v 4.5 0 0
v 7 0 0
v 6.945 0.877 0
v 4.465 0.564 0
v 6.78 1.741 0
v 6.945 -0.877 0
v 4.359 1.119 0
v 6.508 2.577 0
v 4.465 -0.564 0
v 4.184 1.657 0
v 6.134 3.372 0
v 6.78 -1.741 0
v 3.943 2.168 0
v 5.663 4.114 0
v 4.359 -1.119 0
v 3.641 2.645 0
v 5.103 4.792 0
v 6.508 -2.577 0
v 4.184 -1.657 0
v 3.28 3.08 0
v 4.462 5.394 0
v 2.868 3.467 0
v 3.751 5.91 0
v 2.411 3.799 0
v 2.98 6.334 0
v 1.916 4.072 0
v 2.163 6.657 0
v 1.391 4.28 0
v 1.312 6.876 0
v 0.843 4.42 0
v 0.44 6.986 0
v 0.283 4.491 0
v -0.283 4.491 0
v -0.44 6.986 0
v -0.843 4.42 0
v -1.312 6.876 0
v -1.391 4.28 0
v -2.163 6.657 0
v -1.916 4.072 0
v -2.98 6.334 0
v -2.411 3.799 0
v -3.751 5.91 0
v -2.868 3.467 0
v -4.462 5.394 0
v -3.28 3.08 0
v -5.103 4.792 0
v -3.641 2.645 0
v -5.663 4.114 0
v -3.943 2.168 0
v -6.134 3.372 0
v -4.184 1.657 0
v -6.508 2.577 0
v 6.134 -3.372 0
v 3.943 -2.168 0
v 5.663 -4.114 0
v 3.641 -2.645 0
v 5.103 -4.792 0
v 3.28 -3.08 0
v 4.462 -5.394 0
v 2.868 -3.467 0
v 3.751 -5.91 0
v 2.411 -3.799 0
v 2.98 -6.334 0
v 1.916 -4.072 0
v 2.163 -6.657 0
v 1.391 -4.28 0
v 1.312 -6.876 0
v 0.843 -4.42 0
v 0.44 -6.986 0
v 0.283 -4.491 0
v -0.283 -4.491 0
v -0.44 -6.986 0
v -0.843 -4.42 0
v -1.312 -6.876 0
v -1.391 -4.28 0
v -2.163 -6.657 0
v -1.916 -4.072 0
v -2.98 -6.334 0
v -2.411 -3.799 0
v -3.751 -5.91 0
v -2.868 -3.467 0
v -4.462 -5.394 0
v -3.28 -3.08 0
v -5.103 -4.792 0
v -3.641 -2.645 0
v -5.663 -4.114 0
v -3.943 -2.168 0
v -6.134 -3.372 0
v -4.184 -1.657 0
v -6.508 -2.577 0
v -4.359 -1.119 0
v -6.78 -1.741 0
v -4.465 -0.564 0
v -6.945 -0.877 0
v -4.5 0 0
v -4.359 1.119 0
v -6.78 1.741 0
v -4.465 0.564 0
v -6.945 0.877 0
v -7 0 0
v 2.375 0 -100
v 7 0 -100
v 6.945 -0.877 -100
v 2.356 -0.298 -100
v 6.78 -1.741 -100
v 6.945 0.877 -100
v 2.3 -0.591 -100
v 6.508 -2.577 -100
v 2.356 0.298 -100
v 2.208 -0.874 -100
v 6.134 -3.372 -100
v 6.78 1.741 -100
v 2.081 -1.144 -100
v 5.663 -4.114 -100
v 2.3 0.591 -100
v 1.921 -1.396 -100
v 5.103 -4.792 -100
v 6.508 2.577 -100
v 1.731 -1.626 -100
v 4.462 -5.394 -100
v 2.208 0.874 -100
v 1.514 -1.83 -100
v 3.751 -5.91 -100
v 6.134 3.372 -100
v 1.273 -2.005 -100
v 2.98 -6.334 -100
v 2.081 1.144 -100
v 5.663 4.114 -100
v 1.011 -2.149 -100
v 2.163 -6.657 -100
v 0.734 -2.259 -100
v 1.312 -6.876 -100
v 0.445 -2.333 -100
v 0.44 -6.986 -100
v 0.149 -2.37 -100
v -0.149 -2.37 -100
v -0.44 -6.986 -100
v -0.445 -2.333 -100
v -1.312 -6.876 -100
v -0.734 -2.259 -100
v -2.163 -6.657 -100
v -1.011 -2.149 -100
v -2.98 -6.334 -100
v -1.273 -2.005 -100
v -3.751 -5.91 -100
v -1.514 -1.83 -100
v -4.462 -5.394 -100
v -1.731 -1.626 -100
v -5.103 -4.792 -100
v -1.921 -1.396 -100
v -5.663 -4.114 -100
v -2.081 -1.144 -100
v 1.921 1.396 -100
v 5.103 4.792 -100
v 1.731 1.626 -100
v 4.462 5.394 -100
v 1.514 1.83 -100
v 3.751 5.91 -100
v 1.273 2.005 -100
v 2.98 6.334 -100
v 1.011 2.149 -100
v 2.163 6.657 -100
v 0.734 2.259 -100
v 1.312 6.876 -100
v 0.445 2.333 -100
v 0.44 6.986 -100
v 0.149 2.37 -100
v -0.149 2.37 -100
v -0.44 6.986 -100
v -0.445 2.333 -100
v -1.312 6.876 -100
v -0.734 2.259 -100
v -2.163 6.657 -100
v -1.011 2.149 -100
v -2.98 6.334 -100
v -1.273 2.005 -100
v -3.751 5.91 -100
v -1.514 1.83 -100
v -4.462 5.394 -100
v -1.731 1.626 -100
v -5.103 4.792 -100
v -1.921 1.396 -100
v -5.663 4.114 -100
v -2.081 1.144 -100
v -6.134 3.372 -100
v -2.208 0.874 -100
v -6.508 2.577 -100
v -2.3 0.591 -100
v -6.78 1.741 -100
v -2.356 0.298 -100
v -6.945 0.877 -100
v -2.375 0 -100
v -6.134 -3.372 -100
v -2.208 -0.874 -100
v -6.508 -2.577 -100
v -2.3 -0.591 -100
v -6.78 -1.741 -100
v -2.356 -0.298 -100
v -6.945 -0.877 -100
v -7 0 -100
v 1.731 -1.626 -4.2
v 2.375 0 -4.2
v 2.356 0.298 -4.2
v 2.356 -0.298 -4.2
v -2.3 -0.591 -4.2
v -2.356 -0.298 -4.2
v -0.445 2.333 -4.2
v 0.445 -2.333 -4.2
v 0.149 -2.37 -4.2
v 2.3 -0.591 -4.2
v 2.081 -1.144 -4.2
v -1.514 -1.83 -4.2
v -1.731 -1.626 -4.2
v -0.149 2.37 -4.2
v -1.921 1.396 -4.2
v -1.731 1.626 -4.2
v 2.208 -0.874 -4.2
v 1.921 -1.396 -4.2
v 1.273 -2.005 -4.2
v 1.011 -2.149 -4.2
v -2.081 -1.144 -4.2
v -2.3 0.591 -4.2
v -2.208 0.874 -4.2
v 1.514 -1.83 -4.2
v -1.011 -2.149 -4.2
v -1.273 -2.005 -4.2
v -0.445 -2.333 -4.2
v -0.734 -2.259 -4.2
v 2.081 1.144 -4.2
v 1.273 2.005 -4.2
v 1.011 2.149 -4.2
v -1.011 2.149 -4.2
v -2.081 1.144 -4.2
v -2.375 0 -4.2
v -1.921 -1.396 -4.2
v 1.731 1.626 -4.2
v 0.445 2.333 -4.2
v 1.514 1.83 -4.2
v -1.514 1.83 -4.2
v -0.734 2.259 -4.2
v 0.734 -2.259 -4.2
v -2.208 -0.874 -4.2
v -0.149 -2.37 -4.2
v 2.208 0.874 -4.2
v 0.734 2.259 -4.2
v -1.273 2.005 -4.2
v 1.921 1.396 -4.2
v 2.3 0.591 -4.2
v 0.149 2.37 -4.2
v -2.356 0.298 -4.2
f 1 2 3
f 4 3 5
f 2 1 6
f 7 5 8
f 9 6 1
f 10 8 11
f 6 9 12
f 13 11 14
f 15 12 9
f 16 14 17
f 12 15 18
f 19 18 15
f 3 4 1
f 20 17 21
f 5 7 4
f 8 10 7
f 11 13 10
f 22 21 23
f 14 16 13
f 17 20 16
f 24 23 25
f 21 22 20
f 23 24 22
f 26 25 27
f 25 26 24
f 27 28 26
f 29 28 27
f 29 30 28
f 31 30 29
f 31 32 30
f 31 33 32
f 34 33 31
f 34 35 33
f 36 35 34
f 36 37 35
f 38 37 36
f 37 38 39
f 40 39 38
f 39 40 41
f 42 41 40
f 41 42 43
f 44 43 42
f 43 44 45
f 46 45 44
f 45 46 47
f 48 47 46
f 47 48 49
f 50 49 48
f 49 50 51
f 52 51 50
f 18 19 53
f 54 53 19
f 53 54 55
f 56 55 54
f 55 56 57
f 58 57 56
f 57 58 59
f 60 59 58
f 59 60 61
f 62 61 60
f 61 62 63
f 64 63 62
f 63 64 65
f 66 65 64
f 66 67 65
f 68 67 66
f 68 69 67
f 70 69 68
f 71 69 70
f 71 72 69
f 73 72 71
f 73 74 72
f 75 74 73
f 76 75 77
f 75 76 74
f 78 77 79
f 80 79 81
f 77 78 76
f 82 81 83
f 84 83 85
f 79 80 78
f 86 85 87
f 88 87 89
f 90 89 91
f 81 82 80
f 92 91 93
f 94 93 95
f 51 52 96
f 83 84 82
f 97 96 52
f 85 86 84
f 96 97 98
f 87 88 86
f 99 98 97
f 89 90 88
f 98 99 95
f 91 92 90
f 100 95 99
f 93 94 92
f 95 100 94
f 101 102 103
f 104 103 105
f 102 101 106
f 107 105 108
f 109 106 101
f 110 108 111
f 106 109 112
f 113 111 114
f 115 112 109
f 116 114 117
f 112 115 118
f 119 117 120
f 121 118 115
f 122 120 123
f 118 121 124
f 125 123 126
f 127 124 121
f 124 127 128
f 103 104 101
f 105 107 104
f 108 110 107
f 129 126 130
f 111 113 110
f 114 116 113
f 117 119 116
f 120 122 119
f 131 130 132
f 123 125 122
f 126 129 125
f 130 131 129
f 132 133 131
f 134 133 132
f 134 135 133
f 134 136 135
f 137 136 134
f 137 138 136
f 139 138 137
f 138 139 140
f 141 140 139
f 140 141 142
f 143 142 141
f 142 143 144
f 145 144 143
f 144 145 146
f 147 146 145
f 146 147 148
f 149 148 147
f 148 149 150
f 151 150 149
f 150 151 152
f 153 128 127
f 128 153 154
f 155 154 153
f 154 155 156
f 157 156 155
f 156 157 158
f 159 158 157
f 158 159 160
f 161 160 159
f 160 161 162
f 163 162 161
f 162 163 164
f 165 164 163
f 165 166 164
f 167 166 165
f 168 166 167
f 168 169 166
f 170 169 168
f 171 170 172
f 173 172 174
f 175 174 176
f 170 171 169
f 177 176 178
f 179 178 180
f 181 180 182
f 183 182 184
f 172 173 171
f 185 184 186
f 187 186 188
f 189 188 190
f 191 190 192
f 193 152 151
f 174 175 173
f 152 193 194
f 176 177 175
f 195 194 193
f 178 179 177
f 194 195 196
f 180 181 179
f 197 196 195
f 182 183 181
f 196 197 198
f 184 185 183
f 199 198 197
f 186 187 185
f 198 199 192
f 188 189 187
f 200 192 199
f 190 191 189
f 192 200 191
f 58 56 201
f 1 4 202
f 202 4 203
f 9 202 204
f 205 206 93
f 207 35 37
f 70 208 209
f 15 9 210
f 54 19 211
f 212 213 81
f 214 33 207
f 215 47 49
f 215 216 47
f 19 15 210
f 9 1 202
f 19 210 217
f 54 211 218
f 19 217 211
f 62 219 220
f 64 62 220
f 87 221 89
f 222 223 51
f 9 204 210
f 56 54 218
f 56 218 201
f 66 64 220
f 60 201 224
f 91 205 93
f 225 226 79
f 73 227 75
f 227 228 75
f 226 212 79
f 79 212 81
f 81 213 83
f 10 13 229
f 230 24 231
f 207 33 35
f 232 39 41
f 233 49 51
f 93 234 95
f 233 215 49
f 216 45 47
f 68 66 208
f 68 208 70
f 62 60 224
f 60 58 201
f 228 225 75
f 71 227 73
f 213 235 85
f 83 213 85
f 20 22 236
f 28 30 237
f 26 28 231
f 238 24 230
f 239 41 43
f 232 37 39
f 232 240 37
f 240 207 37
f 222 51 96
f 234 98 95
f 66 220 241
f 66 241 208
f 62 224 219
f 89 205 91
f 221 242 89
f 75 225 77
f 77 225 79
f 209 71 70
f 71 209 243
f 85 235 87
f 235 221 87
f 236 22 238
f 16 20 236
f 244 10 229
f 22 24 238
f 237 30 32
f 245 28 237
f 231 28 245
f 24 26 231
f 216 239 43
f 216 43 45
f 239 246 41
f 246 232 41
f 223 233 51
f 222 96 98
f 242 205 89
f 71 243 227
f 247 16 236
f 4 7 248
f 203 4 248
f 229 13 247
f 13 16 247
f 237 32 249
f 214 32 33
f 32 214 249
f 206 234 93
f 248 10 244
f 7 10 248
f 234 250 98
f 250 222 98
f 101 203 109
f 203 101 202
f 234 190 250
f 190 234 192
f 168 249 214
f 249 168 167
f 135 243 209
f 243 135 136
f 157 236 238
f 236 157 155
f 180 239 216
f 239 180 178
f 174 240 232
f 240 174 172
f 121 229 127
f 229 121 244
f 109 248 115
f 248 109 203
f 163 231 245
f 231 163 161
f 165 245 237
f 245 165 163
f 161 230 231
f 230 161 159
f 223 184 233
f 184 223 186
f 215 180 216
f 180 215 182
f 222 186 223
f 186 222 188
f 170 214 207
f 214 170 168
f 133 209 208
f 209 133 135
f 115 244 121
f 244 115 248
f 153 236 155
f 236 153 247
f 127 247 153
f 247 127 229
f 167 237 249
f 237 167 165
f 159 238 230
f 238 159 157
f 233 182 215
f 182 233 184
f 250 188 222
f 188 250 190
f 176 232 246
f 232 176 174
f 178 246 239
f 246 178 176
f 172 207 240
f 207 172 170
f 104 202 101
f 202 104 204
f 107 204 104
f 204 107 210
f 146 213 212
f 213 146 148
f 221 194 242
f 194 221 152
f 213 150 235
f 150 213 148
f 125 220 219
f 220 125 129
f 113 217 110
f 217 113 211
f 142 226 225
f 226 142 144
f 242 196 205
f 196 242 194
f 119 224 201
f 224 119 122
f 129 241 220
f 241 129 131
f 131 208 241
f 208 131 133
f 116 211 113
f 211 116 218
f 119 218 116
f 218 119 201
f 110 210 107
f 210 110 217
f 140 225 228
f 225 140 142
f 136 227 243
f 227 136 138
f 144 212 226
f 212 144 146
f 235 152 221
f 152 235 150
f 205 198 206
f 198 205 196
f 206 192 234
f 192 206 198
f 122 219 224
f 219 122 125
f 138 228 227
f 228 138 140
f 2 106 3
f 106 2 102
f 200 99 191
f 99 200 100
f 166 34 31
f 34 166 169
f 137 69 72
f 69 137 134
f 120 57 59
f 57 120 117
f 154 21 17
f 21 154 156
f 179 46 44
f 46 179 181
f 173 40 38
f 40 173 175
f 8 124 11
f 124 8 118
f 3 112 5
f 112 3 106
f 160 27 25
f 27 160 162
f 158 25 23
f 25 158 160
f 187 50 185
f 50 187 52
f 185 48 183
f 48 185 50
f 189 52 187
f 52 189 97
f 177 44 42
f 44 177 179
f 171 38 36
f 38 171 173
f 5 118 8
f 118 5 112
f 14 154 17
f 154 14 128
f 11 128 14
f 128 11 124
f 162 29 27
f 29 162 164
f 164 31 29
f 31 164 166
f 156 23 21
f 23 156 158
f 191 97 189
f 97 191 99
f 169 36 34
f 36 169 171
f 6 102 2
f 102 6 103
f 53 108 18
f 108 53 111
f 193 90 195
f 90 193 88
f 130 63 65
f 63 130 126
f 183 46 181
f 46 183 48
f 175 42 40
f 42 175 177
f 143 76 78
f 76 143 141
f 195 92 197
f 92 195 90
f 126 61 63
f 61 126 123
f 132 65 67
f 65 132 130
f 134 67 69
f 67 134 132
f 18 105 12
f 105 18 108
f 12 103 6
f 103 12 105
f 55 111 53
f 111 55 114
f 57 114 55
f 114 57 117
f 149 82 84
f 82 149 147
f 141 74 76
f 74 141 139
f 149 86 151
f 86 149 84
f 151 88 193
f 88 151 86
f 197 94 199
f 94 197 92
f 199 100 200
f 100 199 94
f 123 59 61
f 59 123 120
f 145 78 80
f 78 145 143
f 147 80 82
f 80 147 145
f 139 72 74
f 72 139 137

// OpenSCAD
$fn = 50;


difference() {
	union() {
		translate(v = [0, 0, -100.0000000000]) {
			cylinder(h = 100, r = 7.0000000000);
		}
		cylinder(h = 0, r = 13.0000000000);
	}
	union() {
		translate(v = [0, 0, 0]) {
			rotate(a = [0, 0, 0]) {
				difference() {
					union() {
						#translate(v = [0, 0, -100.0000000000]) {
							cylinder(h = 100, r = 2.2500000000);
						}
						#translate(v = [0, 0, -4.2000000000]) {
							cylinder(h = 4.2000000000, r1 = 2.3750000000, r2 = 4.5000000000);
						}
						#translate(v = [0, 0, -100.0000000000]) {
							cylinder(h = 100, r = 2.3750000000);
						}
						#translate(v = [0, 0, -100.0000000000]) {
							cylinder(h = 100, r = 2.2500000000);
						}
					}
					union();
				}
			}
		}
	}
}
